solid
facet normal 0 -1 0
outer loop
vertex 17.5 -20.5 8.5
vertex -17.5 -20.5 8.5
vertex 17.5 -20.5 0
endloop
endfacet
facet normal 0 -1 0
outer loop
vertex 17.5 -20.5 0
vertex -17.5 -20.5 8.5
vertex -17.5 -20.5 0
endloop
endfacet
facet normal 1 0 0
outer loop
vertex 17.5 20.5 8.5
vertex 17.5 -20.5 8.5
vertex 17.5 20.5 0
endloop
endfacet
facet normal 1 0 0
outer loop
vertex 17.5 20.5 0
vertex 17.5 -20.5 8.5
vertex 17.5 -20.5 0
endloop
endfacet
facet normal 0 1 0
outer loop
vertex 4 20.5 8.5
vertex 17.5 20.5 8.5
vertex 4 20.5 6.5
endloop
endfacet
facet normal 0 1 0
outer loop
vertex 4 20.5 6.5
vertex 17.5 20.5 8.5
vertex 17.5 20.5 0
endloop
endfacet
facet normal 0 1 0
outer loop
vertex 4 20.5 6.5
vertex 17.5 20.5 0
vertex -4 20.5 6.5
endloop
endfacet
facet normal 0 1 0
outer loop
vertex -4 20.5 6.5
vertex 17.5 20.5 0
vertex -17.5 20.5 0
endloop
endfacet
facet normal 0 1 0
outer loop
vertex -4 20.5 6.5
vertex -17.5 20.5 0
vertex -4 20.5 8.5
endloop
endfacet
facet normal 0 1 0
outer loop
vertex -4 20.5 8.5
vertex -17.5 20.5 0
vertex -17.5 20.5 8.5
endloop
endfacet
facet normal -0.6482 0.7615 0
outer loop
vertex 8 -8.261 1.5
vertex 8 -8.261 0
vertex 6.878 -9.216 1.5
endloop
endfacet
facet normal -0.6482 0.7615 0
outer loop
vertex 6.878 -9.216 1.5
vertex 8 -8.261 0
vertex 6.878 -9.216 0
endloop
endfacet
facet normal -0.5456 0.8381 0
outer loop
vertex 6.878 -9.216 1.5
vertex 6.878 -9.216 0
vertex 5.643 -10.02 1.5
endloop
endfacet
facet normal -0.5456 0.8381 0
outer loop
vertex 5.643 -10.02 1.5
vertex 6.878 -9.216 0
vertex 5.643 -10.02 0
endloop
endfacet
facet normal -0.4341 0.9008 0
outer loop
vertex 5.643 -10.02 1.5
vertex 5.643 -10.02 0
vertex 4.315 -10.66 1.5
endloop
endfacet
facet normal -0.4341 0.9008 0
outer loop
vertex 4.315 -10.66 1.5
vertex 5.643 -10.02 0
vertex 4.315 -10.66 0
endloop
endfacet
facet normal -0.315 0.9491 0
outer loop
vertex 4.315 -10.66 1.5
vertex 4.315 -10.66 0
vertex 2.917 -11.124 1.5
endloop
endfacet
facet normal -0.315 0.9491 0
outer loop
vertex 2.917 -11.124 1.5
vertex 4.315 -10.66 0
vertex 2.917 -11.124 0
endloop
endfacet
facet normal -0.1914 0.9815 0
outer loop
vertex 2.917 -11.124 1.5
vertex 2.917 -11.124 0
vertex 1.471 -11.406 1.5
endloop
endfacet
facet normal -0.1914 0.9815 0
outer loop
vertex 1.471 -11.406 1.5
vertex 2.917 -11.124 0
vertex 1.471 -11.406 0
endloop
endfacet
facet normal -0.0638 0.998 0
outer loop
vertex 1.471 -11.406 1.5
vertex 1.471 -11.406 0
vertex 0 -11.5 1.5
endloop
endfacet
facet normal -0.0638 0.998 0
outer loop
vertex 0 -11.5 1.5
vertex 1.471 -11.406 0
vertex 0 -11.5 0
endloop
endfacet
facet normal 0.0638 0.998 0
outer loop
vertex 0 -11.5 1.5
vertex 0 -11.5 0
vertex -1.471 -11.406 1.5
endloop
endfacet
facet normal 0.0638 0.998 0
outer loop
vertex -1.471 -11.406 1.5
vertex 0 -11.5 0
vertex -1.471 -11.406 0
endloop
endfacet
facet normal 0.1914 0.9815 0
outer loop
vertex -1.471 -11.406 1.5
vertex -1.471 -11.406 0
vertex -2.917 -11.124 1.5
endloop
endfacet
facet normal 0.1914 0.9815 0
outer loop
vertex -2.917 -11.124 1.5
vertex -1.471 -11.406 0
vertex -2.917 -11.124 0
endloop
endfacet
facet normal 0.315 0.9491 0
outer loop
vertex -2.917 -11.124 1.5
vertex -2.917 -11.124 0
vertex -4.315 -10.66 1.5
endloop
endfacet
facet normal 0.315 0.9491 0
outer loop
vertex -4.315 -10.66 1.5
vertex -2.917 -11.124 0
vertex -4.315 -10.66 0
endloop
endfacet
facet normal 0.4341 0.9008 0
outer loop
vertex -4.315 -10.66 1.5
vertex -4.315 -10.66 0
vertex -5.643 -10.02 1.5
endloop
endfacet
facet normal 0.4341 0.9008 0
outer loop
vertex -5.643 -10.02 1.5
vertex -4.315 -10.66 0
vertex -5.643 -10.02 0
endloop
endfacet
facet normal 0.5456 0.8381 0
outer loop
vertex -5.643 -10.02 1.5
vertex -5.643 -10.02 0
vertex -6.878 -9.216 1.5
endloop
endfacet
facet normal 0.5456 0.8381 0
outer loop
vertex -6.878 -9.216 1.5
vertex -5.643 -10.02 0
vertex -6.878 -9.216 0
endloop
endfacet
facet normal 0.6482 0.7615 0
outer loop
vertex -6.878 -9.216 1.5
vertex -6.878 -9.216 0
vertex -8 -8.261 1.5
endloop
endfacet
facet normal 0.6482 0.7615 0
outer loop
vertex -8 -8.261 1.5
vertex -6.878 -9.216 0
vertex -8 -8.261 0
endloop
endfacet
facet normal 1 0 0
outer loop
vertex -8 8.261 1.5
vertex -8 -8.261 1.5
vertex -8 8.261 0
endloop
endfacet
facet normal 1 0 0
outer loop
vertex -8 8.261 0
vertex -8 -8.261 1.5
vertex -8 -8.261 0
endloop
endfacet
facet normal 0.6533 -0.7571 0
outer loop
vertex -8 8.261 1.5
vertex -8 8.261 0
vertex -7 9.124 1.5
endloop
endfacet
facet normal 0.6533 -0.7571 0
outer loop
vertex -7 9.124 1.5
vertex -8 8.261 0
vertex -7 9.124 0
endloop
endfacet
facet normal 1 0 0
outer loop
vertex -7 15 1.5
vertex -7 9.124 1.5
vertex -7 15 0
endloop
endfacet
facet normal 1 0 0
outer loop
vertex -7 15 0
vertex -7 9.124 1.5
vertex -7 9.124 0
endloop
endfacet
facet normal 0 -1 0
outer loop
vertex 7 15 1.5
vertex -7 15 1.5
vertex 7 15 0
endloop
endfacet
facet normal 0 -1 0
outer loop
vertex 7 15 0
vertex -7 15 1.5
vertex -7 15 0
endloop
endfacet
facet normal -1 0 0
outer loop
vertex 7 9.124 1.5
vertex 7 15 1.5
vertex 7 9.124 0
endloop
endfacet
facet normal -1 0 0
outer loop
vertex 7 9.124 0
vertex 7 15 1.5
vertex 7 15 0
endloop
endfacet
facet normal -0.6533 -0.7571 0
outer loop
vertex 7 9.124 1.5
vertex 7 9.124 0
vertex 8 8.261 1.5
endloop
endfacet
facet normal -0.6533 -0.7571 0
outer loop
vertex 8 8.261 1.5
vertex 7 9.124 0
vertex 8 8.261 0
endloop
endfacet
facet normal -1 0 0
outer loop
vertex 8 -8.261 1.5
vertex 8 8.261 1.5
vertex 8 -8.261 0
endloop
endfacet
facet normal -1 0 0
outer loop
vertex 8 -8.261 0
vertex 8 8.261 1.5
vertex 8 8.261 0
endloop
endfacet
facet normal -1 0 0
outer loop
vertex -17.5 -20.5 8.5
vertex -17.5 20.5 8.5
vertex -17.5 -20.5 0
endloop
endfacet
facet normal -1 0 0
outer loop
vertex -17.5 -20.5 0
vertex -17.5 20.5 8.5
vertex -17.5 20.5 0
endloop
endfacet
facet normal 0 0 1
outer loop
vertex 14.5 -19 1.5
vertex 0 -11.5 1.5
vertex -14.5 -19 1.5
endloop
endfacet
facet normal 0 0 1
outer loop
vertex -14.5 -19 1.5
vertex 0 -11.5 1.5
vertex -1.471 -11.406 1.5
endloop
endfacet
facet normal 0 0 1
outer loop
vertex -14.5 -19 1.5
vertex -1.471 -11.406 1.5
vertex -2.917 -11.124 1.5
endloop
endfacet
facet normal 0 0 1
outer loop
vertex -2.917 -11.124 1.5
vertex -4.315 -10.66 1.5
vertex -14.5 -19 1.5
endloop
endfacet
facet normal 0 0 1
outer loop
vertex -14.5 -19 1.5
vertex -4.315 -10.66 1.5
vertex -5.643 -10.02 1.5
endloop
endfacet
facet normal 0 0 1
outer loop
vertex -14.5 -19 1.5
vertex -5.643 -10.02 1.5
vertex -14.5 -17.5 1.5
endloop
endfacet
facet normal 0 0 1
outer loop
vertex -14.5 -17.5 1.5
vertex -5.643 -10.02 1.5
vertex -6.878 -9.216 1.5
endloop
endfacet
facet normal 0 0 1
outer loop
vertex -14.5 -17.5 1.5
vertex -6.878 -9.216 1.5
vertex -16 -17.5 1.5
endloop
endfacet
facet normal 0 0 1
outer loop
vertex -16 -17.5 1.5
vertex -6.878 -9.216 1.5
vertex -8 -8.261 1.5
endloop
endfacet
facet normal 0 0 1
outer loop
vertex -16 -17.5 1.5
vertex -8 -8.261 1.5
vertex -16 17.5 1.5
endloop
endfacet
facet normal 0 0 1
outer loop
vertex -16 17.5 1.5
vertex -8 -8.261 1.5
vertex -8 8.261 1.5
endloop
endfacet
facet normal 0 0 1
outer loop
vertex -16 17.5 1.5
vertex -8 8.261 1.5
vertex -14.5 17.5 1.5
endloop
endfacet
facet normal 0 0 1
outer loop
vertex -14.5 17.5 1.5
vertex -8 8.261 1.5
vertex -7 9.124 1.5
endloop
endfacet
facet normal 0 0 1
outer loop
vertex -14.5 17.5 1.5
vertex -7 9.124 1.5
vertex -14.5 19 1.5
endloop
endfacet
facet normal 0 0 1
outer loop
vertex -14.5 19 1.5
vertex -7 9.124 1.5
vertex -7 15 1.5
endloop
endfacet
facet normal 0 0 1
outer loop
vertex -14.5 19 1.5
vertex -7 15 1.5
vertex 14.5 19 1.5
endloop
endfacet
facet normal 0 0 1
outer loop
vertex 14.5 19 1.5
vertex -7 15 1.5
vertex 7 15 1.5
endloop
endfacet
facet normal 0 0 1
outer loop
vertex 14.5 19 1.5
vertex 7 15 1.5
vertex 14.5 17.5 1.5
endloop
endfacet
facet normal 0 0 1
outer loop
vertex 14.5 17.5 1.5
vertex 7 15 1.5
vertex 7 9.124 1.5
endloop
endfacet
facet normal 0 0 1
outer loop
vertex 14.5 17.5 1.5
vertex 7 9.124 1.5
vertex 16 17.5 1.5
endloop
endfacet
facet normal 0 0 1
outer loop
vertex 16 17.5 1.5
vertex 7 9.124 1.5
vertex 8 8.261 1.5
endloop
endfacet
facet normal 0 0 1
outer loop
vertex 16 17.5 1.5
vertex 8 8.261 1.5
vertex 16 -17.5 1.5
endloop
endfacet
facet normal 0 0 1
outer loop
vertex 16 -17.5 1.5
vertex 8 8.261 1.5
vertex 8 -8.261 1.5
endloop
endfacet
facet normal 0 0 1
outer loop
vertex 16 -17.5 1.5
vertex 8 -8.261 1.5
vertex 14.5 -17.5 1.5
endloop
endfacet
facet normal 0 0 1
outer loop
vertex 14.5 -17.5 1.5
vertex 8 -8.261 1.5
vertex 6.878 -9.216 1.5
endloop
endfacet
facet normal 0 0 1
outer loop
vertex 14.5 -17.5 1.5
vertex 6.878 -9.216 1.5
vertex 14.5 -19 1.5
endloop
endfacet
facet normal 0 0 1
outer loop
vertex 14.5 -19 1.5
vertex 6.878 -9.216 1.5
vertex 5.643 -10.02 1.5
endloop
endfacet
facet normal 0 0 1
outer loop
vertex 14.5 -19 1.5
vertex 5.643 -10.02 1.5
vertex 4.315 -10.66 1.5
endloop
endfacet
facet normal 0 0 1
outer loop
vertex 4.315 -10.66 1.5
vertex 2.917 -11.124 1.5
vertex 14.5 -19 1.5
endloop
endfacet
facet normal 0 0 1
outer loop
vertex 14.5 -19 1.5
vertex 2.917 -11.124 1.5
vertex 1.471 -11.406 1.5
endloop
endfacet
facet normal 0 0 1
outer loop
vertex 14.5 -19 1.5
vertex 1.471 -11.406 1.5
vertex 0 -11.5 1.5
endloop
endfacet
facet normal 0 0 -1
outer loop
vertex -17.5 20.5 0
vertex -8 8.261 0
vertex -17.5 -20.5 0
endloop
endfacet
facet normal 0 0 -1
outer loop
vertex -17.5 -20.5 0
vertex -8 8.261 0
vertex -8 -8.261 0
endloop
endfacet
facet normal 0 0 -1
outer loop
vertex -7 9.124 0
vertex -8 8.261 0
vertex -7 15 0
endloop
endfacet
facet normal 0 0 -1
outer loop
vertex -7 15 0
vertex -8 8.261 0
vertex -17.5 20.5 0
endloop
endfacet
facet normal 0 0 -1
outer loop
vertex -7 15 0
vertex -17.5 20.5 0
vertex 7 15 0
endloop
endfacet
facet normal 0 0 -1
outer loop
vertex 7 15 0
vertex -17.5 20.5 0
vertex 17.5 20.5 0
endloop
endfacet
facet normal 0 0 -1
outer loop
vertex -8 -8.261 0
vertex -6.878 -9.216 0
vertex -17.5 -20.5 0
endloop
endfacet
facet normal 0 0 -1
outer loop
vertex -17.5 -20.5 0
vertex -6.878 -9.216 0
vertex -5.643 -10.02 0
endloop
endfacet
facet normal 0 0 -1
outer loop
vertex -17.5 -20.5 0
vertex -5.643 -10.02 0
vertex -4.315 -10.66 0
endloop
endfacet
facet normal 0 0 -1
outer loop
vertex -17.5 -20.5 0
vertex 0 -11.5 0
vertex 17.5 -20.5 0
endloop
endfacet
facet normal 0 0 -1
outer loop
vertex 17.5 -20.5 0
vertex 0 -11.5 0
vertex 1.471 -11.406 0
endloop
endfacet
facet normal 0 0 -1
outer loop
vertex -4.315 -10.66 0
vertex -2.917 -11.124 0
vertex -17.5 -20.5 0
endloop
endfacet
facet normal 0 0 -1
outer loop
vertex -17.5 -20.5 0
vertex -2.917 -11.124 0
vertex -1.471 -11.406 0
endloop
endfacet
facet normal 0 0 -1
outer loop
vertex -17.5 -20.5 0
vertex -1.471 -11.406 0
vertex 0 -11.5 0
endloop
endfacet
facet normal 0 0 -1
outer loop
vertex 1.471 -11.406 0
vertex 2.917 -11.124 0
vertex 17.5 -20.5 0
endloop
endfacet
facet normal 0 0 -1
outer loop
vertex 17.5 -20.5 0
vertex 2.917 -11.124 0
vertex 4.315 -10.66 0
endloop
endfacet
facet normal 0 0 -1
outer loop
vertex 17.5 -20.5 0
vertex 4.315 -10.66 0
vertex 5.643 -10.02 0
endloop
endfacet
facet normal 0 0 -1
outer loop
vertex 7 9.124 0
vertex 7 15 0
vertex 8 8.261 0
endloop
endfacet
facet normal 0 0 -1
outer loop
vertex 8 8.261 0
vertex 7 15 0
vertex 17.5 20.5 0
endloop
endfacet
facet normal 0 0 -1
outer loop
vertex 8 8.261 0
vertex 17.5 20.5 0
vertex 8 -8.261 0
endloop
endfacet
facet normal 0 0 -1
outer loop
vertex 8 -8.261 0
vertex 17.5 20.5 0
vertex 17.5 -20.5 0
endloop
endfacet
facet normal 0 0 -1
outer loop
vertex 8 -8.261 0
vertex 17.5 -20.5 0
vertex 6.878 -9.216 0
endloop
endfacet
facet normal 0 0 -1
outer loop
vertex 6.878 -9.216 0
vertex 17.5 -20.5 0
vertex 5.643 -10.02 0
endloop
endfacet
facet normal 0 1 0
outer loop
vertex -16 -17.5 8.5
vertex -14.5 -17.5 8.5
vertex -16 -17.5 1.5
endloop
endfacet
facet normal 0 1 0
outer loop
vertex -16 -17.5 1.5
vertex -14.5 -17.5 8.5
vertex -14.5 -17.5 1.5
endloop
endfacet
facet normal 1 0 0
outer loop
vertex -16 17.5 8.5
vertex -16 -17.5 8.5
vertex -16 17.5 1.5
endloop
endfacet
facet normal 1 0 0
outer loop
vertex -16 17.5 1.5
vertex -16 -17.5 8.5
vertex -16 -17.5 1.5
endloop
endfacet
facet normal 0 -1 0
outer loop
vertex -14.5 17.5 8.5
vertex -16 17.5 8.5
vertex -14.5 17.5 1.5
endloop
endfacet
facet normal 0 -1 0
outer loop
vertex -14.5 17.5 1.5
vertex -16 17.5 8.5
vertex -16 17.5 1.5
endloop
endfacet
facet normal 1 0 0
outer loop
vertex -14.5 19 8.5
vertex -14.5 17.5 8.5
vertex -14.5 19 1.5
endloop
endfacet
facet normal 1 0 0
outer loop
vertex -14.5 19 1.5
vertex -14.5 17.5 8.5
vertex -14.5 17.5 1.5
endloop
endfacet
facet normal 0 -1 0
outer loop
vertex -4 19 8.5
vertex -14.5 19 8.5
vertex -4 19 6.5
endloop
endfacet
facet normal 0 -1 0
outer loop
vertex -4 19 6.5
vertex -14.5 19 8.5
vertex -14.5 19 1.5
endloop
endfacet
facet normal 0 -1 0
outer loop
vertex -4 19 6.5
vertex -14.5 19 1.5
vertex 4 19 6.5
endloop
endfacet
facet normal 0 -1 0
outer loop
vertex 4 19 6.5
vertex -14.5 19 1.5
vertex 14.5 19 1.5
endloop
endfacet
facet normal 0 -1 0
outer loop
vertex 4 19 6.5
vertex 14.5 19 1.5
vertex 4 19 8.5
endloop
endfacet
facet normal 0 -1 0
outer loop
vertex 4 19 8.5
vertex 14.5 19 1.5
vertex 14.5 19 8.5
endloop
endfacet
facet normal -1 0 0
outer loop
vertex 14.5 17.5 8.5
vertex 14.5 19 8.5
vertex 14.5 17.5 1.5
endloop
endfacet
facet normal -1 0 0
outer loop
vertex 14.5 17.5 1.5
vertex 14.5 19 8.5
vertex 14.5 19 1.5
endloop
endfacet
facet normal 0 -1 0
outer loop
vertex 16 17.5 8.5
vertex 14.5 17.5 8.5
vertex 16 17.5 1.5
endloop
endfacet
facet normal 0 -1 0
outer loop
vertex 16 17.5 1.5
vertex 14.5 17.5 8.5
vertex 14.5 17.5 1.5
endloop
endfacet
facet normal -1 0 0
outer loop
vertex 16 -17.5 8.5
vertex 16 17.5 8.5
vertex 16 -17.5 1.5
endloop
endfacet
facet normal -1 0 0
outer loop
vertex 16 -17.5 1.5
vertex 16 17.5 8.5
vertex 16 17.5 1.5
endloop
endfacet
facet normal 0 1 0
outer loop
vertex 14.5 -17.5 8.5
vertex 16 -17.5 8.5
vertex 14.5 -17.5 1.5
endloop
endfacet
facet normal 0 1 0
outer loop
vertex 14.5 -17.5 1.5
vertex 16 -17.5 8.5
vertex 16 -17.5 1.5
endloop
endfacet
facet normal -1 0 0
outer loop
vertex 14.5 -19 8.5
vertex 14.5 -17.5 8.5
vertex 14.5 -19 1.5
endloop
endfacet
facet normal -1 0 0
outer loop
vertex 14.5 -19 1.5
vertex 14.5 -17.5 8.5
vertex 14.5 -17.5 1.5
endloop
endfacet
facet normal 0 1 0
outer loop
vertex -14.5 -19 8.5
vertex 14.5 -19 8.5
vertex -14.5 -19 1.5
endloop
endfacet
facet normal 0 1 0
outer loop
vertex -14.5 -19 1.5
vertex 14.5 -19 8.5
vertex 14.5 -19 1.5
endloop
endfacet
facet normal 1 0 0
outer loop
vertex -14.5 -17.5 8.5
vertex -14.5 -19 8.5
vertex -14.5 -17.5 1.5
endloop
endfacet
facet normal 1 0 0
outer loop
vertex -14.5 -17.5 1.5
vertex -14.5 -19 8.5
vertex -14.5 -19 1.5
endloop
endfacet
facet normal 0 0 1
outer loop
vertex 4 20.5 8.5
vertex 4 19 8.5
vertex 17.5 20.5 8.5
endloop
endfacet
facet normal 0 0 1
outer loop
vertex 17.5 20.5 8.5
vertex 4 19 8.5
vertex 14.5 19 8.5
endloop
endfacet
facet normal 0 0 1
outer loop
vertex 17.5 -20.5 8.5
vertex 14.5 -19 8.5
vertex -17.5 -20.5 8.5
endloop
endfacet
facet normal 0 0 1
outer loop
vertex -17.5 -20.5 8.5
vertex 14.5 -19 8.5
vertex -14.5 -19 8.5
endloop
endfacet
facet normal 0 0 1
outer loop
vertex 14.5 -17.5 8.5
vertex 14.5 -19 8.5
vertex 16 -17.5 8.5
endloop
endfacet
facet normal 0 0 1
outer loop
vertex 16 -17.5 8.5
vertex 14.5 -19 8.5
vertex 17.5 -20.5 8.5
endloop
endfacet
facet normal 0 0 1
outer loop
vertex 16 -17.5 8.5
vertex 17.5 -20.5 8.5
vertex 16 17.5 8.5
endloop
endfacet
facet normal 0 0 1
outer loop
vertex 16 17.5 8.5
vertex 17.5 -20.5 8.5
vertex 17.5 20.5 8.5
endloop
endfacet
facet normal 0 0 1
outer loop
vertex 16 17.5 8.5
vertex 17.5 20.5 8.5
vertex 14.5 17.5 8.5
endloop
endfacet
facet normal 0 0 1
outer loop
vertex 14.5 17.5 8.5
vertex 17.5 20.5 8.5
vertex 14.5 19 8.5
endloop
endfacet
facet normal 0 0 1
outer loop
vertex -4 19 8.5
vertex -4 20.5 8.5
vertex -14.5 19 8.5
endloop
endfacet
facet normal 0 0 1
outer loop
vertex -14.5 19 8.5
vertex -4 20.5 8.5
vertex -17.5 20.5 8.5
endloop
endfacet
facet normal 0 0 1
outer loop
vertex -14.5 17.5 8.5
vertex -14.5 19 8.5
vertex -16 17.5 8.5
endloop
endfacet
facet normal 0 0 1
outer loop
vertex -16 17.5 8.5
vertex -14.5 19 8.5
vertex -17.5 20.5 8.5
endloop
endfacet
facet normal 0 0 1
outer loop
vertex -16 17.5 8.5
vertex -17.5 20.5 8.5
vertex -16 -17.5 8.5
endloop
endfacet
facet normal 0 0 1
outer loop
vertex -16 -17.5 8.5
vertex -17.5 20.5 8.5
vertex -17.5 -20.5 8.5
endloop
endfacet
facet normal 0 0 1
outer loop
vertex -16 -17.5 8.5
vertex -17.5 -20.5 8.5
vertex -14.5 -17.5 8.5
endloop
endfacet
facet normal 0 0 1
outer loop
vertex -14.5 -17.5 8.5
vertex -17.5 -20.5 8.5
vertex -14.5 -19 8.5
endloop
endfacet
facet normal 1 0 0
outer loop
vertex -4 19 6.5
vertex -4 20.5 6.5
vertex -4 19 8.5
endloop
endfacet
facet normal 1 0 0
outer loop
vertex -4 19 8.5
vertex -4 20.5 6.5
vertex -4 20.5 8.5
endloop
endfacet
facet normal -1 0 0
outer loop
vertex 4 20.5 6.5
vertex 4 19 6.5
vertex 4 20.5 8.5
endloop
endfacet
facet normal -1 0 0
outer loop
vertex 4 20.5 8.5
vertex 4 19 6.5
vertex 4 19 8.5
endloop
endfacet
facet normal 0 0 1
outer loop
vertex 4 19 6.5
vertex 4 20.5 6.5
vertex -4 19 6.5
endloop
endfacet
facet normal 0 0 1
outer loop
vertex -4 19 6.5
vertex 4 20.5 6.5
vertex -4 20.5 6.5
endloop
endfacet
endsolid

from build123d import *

# Parameters (mm, degrees)
SKETCH_1_W          = 35
SKETCH_1_H          = 41
EXTRUDE_1_DEPTH     = 1.5
EXTRUDE_2_DEPTH     = 7
SKETCH_3_W          = 8
SKETCH_3_H          = 1.5
CUT_EXTRUDE_1_DEPTH = 2


with BuildPart() as part:
    # Эскиз1 → Бобышка-Вытянуть1 (new body)
    with BuildSketch(Plane.XY):
        Rectangle(SKETCH_1_W, SKETCH_1_H)
        with BuildLine():
            Line((7, 9.124143795), (7, 15))
            Line((7, 15), (-7, 15))
            Line((-7, 15), (-7, 9.124143795))
            ThreePointArc((-7, 9.124143795), (-7.512396473, 8.707117734), (-8, 8.261355821))
            Line((-8, 8.261355821), (-8, -8.261355821))
            ThreePointArc((-8, -8.261355821), (0, -11.5), (8, -8.261355821))
            Line((8, -8.261355821), (8, 8.261355821))
            ThreePointArc((8, 8.261355821), (7.512396473, 8.707117734), (7, 9.124143795))
        make_face(mode=Mode.SUBTRACT)
    extrude(amount=EXTRUDE_1_DEPTH)

    # Эскиз2 → Бобышка-Вытянуть2 (add)
    with BuildSketch(Plane.XY.offset(1.5)):
        Polygon((-17.5, -20.5), (17.5, -20.5), (17.5, 20.5), (-14.5, 20.5), (-17.5, 20.5), (-17.5, 17.5), align=None)
        Polygon((14.5, -17.5), (14.5, -19), (-14.5, -19), (-14.5, -17.5), (-16, -17.5), (-16, 17.5), (-14.5, 17.5), (-14.5, 19), (14.5, 19), (14.5, 17.5), (16, 17.5), (16, -17.5), align=None, mode=Mode.SUBTRACT)
    extrude(amount=EXTRUDE_2_DEPTH)

    # Эскиз3 → Вырез-Вытянуть1 (cut)
    with BuildSketch(Plane.XY.offset(8.5)):
        with Locations((0, 19.75)):
            Rectangle(SKETCH_3_W, SKETCH_3_H)
    extrude(amount=-CUT_EXTRUDE_1_DEPTH, mode=Mode.SUBTRACT)


solid = part.part
